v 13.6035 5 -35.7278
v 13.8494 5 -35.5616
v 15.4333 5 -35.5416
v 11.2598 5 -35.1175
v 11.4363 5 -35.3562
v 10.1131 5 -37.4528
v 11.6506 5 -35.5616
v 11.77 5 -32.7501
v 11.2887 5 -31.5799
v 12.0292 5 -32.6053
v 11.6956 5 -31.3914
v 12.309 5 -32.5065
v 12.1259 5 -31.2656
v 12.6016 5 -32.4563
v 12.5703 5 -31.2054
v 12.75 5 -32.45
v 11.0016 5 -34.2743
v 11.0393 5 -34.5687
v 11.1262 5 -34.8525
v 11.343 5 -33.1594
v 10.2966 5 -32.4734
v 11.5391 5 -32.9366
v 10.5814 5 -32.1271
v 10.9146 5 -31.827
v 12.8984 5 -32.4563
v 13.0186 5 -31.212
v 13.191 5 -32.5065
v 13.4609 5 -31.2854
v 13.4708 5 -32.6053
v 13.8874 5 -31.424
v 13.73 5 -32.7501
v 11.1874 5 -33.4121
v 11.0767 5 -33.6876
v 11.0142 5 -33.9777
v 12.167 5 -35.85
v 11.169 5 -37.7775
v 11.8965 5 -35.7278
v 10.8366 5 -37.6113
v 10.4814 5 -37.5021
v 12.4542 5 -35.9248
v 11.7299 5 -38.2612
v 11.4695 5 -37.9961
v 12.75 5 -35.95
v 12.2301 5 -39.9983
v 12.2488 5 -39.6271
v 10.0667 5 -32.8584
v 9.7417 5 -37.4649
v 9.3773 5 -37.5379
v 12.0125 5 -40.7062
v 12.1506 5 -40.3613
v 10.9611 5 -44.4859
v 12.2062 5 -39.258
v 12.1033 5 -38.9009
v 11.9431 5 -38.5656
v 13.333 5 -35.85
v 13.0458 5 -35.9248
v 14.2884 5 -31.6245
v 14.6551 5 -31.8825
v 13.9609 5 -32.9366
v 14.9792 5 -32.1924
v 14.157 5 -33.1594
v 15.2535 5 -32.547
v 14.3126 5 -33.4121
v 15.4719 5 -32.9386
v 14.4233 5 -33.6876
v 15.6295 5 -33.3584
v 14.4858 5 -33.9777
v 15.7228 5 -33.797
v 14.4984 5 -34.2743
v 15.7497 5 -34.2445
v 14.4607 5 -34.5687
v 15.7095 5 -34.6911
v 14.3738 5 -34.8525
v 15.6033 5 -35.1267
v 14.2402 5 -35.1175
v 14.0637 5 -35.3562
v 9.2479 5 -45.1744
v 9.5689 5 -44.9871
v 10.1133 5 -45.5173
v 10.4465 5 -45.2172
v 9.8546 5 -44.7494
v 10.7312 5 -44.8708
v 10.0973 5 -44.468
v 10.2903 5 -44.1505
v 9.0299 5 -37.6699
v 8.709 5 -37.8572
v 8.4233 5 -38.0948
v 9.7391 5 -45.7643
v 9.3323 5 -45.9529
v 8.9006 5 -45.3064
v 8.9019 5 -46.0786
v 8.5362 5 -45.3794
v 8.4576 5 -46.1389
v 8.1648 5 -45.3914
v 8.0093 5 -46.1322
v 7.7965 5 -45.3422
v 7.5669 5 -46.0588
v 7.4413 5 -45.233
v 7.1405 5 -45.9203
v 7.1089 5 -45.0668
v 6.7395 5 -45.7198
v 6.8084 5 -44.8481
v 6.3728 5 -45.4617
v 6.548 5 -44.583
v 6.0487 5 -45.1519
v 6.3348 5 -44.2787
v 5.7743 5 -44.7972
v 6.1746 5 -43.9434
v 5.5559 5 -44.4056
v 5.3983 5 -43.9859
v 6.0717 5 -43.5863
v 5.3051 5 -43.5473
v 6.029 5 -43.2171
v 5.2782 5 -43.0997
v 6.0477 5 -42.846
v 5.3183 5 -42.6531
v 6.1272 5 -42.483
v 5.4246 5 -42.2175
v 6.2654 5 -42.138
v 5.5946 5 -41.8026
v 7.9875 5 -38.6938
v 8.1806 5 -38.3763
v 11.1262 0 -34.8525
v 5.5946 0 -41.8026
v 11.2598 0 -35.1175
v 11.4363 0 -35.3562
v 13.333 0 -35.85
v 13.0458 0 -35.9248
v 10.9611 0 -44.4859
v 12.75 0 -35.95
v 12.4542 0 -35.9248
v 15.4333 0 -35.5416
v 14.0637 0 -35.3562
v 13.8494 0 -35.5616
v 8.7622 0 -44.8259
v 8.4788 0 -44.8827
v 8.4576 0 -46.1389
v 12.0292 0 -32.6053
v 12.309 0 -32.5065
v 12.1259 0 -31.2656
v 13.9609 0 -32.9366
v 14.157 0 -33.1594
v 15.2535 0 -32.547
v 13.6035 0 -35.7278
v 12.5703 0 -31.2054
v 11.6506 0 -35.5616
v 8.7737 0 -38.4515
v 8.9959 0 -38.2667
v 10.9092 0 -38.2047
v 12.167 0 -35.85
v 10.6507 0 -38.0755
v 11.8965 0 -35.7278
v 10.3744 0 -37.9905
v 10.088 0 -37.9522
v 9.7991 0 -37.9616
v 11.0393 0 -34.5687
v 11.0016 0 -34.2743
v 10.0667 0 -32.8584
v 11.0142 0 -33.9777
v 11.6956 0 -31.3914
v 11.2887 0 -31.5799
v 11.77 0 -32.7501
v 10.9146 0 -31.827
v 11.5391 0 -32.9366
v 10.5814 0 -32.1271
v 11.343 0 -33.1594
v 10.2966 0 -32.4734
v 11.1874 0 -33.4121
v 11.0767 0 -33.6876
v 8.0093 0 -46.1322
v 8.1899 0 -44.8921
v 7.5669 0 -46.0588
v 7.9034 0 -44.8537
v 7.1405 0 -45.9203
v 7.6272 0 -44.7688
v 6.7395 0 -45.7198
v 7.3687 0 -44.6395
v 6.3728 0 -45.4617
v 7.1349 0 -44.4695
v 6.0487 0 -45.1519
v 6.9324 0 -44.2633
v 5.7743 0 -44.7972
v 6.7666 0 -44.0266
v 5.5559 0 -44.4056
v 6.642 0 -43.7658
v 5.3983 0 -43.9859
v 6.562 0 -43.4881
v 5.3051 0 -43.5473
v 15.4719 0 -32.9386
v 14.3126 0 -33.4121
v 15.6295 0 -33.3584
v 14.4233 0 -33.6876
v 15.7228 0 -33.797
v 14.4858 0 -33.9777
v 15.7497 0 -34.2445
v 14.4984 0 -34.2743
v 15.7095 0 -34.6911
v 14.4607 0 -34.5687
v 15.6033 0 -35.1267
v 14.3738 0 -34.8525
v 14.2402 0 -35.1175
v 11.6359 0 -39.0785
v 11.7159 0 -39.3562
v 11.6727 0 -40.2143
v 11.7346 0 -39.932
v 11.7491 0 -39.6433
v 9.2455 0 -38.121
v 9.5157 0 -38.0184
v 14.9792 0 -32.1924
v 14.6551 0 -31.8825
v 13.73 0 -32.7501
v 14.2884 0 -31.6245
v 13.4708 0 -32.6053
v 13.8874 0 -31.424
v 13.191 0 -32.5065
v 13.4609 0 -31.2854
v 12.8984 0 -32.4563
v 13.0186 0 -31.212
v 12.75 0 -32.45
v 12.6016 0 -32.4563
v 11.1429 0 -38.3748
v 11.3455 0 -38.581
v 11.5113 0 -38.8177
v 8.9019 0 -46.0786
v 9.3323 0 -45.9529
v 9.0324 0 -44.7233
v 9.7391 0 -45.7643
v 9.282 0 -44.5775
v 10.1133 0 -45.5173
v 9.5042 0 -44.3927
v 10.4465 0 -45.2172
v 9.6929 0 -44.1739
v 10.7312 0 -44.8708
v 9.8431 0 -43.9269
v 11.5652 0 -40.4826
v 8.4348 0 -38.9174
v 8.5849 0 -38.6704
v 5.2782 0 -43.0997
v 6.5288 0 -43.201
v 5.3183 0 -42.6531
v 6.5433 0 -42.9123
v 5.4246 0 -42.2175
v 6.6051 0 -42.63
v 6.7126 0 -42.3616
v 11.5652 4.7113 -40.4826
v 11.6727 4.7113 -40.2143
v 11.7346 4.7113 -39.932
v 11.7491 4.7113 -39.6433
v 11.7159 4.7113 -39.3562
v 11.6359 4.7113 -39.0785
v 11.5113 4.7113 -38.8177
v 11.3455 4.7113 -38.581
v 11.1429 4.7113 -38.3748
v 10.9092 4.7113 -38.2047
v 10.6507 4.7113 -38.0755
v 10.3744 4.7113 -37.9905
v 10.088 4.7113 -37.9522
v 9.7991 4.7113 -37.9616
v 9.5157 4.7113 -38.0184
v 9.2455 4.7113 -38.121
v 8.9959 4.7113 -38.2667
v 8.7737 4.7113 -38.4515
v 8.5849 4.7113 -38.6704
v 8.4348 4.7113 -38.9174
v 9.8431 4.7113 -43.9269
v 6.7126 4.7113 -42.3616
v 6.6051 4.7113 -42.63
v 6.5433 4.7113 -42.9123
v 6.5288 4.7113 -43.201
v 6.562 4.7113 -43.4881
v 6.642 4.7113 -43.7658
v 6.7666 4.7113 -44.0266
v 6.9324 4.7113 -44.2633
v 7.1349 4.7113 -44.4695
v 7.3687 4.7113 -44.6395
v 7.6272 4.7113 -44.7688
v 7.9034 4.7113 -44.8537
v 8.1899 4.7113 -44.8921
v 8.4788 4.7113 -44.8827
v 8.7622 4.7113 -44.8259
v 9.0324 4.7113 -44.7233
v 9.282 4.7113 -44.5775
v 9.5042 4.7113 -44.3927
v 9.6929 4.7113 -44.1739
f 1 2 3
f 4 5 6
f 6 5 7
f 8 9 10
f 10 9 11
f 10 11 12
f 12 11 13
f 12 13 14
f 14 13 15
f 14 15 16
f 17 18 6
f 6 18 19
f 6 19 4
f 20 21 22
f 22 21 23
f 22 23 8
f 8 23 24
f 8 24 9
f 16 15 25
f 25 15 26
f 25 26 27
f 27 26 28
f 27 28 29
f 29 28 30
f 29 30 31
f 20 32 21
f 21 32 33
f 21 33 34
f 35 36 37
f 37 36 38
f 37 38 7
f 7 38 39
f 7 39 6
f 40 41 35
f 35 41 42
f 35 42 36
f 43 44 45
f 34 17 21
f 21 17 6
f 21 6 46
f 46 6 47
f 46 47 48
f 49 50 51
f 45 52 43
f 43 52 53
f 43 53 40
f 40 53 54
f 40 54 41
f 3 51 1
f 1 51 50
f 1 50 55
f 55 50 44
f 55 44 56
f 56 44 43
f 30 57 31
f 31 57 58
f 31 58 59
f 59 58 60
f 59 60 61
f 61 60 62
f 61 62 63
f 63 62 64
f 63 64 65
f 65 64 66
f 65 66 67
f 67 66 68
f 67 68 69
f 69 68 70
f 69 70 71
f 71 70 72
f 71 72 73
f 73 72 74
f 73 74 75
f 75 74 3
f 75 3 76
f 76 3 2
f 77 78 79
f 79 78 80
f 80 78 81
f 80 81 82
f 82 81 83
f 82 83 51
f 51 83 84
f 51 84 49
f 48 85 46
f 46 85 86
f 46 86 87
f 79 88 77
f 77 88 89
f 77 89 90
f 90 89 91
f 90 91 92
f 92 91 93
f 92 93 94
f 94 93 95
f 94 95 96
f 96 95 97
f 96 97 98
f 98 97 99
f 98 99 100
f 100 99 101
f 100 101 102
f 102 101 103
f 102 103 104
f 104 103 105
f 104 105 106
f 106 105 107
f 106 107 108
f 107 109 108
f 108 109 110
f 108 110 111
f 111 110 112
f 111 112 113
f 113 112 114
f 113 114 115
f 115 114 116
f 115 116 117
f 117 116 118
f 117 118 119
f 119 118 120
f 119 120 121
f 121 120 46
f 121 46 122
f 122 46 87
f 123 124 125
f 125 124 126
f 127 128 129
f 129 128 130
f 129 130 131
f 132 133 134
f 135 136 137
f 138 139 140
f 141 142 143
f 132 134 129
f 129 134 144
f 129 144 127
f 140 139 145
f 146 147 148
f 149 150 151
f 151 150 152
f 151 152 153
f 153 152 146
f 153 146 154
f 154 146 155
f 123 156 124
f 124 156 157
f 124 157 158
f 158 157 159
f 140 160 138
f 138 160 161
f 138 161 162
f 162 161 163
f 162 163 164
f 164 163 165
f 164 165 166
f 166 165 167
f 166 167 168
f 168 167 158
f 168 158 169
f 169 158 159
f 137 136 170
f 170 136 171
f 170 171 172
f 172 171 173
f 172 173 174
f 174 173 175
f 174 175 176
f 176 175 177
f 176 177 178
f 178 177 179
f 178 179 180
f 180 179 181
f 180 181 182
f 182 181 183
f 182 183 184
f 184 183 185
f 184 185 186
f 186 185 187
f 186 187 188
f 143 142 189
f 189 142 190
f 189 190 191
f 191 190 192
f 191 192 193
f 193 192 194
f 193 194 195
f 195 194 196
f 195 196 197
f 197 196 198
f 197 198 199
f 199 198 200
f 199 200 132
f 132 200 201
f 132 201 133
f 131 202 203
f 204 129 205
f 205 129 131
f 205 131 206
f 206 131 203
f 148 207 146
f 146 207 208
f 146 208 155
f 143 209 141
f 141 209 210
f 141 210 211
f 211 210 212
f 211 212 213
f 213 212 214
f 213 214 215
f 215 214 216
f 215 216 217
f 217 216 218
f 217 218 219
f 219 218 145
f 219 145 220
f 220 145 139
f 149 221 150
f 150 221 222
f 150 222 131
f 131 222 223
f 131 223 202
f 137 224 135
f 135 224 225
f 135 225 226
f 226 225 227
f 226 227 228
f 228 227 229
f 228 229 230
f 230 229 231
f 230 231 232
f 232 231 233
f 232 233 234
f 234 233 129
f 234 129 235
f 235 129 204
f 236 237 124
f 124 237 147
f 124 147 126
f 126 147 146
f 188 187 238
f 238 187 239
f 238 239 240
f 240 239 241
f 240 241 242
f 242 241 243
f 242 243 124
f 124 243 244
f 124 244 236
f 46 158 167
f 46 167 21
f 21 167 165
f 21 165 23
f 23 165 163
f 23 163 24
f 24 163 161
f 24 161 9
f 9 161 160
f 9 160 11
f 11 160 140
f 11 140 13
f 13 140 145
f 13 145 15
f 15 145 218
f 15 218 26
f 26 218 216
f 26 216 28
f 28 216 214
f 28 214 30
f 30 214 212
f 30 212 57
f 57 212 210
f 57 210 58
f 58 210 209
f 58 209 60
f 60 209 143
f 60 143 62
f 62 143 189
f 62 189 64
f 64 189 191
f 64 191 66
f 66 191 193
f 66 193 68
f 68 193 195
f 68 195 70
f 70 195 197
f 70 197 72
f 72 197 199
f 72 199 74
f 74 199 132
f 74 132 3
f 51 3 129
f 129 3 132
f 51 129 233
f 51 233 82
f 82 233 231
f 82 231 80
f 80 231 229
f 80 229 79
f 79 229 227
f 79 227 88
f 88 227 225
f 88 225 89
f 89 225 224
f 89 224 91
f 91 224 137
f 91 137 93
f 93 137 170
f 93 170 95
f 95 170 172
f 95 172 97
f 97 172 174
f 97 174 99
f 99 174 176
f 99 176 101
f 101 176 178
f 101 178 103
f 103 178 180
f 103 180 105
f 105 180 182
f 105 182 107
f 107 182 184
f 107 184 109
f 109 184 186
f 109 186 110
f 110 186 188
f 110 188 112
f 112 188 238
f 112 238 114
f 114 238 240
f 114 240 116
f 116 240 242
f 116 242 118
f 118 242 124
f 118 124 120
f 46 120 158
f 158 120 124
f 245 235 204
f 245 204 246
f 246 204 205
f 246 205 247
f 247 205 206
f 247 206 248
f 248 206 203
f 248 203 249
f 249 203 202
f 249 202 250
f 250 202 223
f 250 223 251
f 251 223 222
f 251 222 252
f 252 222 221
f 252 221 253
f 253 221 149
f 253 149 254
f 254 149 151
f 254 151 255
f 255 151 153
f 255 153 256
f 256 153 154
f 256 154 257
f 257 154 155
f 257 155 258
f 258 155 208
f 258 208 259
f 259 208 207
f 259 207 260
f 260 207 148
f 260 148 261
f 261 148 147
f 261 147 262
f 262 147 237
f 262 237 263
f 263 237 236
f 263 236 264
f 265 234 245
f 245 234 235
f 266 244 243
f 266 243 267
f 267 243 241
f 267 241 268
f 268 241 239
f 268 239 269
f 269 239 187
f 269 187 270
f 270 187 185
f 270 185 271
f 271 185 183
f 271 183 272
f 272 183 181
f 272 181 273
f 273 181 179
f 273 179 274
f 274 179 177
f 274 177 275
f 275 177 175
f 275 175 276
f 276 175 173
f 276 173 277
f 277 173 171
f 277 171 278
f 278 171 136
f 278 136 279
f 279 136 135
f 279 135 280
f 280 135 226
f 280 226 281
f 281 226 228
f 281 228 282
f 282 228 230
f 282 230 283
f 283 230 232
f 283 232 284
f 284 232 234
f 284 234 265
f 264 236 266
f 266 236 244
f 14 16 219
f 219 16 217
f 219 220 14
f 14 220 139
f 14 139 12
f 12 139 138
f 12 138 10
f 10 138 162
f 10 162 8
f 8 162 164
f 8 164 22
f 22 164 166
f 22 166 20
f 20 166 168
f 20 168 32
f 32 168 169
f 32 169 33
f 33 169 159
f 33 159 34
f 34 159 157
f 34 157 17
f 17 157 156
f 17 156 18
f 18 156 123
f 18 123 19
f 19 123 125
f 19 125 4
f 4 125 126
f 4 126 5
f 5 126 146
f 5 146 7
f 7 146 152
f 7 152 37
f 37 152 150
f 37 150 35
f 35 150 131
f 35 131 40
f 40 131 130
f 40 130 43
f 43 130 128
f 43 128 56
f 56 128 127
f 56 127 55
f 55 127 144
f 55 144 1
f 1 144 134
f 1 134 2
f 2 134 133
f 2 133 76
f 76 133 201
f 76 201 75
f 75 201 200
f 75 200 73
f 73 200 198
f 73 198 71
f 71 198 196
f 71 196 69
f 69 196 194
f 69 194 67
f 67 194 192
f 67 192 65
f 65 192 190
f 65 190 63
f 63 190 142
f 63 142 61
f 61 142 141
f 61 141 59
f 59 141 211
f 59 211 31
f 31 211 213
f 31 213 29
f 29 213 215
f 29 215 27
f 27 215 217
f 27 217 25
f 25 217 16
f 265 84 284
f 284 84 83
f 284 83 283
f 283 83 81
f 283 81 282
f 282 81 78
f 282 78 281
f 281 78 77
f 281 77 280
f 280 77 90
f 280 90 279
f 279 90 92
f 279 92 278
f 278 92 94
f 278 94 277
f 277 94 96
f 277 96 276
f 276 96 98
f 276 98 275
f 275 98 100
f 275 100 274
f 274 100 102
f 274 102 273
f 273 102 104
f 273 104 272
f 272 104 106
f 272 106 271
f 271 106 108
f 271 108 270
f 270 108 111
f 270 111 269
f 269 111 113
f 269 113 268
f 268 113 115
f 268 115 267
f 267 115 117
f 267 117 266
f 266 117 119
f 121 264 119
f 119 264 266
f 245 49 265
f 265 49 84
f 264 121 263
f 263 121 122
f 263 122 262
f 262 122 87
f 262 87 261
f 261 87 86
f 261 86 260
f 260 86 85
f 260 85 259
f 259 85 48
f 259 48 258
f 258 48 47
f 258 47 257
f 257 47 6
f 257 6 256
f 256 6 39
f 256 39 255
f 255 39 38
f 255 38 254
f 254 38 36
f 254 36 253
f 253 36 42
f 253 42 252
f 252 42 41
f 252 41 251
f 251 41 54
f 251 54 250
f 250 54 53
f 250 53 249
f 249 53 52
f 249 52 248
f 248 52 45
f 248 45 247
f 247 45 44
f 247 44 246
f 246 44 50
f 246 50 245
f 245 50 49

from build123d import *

# Parameters (mm, degrees)
SKETCH1_R           = 1.75
BOSS_EXTRUDE1_DEPTH = 5
CHAMFER1_SIZE       = 0.5
CHAMFER1_SIZE2      = 0.288675135


with BuildPart() as part:
    # Sketch1 → Boss-Extrude1 (new body)
    with BuildSketch(Plane(origin=(0, 0, 0), x_dir=(1, 0, 0), z_dir=(0, 1, 0))):
        with BuildLine():
            Line((15.433281573, 35.541640786), (10.961145618, 44.485912696))
            ThreePointArc((10.961145618, 44.485912696), (6.936223259, 45.827553483), (5.594582472, 41.802631123))
            Line((5.594582472, 41.802631123), (10.066718427, 32.858359214))
            ThreePointArc((10.066718427, 32.858359214), (14.091640786, 31.516718427), (15.433281573, 35.541640786))
        make_face()
        with Locations(Location((12.75, 34.2, 0), (0, 0, 270))):
            Circle(SKETCH1_R, mode=Mode.SUBTRACT)
        with BuildLine():
            Line((11.565247584, 40.482623792), (9.843111629, 43.926895702))
            ThreePointArc((9.843111629, 43.926895702), (7.495240253, 44.709519494), (6.712616461, 42.361648118))
            Line((6.712616461, 42.361648118), (8.434752416, 38.917376208))
            ThreePointArc((8.434752416, 38.917376208), (10.782623792, 38.134752416), (11.565247584, 40.482623792))
        make_face(mode=Mode.SUBTRACT)
    extrude(amount=BOSS_EXTRUDE1_DEPTH)

    # Chamfer1
    chamfer1_edges = [part.edges().sort_by_distance(p)[0] for p in [
        (10.782623792, 5, -38.134752416),
        (10.704179607, 5, -42.204759747),
        (7.495240253, 5, -44.709519494),
        (7.573684438, 5, -40.639512163),
    ]]
    chamfer1_side = [part.faces().sort_by_distance(p)[0] for p in [
        (7.993867335, 5, -37.412103611),
    ]]
    chamfer(chamfer1_edges, length=CHAMFER1_SIZE, length2=CHAMFER1_SIZE2, reference=chamfer1_side[0])


solid = part.part
